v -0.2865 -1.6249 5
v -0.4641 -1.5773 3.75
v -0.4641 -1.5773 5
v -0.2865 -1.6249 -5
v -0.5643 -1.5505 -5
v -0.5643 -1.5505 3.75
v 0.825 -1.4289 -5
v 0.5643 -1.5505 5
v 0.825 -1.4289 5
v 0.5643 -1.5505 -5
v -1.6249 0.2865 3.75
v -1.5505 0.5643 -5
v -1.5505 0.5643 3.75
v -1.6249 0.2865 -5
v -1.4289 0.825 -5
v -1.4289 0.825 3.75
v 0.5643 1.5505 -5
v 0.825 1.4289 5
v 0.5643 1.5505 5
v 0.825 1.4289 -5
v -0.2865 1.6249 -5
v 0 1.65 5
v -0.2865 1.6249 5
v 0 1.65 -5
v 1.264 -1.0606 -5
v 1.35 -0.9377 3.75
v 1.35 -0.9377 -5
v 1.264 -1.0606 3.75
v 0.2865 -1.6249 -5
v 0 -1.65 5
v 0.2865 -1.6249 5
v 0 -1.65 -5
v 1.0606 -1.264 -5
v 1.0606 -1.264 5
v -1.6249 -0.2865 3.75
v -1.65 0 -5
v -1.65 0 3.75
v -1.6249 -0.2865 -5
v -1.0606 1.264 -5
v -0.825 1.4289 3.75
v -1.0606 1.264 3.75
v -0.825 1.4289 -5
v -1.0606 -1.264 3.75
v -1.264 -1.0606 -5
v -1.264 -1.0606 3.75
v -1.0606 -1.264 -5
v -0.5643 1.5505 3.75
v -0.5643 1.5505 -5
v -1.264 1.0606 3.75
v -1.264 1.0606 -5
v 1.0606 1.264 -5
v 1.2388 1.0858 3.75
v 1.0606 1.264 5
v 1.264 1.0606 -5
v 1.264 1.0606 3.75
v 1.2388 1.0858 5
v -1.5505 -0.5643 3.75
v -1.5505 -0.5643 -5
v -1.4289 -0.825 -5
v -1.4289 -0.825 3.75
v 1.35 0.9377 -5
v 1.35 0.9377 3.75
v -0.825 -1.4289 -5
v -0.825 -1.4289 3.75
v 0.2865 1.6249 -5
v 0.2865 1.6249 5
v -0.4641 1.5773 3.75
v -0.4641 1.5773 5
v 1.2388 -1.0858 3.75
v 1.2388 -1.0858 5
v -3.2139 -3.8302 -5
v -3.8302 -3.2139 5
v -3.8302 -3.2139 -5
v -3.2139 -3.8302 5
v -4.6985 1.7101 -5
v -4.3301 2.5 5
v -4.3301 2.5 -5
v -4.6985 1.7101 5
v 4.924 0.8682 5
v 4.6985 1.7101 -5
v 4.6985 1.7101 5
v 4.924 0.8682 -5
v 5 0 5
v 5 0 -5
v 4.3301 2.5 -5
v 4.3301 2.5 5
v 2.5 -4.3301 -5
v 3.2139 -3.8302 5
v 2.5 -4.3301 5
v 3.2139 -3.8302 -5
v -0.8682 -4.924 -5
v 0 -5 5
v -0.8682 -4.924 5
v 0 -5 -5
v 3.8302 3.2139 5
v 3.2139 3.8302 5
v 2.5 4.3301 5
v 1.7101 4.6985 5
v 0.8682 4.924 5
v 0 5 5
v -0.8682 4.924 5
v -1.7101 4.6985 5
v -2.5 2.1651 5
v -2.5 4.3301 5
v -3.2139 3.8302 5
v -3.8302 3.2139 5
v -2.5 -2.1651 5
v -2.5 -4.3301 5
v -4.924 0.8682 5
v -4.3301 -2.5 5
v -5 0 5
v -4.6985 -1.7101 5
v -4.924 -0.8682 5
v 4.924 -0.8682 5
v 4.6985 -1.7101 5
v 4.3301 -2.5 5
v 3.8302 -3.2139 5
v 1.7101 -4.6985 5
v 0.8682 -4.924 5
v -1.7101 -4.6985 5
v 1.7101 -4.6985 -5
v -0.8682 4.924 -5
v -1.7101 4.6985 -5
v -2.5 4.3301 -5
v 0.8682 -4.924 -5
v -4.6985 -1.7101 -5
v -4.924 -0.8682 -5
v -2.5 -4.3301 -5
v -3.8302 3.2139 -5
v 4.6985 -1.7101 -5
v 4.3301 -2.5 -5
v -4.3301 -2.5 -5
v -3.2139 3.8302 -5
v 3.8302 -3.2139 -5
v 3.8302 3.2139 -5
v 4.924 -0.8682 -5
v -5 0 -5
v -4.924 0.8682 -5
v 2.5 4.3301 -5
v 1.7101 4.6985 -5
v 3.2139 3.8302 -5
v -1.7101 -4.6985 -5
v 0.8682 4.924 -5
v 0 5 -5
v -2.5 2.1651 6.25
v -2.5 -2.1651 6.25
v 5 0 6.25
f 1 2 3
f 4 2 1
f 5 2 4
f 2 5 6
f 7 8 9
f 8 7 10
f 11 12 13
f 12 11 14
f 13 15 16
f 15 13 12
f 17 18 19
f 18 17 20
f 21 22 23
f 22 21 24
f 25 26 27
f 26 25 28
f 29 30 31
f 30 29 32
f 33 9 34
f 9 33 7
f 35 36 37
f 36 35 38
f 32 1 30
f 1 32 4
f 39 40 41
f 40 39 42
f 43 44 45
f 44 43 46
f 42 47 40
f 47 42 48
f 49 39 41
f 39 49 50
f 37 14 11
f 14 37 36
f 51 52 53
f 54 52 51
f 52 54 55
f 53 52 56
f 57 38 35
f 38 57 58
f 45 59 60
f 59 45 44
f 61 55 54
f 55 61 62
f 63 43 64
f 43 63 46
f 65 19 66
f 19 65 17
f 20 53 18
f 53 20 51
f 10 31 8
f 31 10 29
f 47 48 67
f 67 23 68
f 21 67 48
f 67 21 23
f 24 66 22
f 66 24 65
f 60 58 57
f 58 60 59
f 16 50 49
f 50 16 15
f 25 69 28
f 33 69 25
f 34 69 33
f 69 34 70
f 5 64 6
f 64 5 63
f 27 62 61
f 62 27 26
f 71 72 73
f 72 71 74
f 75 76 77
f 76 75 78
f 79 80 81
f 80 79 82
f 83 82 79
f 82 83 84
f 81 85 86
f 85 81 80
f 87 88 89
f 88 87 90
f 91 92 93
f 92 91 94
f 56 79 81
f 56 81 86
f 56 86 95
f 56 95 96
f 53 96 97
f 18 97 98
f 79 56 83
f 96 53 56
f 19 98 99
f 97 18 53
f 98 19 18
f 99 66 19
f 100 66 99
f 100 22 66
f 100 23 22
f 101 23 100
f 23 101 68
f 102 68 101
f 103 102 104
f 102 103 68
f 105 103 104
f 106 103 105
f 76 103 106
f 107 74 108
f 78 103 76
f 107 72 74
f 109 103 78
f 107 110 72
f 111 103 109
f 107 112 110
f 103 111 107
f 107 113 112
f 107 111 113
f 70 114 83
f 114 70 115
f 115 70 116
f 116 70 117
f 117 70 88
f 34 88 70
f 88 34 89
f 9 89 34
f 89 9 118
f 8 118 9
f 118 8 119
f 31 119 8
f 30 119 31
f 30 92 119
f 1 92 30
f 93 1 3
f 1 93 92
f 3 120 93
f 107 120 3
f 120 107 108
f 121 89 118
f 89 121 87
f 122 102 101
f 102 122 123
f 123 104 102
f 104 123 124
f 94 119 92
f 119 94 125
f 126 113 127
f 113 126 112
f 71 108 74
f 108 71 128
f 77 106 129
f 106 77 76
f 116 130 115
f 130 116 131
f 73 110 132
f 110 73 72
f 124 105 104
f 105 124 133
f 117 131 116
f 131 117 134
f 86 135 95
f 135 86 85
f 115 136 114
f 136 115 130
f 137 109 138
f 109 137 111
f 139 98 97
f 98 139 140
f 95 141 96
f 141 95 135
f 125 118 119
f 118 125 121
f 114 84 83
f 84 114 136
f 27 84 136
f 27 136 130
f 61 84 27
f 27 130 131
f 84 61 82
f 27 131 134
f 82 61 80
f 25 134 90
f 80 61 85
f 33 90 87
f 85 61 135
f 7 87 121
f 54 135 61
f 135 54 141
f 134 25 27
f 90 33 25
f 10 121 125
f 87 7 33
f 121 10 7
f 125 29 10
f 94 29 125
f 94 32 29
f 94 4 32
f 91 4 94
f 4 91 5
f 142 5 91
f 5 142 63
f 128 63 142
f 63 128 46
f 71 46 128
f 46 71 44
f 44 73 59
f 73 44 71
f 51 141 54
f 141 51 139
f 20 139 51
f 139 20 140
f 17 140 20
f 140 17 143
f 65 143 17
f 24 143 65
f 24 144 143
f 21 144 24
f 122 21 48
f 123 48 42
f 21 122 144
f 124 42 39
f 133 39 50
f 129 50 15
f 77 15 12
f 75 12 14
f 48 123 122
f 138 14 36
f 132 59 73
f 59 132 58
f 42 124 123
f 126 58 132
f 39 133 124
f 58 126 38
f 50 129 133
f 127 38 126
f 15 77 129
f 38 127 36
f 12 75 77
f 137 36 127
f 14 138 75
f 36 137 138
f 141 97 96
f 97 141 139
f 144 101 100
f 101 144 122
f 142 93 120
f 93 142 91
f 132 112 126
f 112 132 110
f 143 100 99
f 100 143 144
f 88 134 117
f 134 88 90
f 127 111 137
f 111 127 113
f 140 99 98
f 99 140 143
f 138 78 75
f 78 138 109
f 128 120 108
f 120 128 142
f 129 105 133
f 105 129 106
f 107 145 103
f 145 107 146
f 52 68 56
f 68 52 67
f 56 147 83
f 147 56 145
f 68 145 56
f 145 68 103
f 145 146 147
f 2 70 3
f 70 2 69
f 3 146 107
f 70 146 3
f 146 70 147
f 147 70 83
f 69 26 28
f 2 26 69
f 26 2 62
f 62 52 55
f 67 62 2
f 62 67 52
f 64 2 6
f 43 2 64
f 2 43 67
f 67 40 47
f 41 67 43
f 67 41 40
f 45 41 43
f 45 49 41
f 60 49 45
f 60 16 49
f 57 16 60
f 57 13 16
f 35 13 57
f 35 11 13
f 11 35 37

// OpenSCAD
$fn=36;
height=10;
outerD=10;
innerD=3.3;
barOffset=innerD / 2 - (innerD - 3.);

union()
{
	difference()
	{
		cylinder(h=height, r=outerD / 2, center=true);

		difference()
		{
			cylinder(h=1.1 * height, r=innerD / 2, center=true);
			color("red")
			translate([barOffset + innerD / 2, 0, 0])
				cube([innerD, innerD, 1.1 * height], true);
		}
	}


	translate([0, 0, height / 2])
	scale([1.0, 0.5, 1.0])
		cylinder(h=height / 4, r=outerD / 2, center=true, $fn=3);
}
